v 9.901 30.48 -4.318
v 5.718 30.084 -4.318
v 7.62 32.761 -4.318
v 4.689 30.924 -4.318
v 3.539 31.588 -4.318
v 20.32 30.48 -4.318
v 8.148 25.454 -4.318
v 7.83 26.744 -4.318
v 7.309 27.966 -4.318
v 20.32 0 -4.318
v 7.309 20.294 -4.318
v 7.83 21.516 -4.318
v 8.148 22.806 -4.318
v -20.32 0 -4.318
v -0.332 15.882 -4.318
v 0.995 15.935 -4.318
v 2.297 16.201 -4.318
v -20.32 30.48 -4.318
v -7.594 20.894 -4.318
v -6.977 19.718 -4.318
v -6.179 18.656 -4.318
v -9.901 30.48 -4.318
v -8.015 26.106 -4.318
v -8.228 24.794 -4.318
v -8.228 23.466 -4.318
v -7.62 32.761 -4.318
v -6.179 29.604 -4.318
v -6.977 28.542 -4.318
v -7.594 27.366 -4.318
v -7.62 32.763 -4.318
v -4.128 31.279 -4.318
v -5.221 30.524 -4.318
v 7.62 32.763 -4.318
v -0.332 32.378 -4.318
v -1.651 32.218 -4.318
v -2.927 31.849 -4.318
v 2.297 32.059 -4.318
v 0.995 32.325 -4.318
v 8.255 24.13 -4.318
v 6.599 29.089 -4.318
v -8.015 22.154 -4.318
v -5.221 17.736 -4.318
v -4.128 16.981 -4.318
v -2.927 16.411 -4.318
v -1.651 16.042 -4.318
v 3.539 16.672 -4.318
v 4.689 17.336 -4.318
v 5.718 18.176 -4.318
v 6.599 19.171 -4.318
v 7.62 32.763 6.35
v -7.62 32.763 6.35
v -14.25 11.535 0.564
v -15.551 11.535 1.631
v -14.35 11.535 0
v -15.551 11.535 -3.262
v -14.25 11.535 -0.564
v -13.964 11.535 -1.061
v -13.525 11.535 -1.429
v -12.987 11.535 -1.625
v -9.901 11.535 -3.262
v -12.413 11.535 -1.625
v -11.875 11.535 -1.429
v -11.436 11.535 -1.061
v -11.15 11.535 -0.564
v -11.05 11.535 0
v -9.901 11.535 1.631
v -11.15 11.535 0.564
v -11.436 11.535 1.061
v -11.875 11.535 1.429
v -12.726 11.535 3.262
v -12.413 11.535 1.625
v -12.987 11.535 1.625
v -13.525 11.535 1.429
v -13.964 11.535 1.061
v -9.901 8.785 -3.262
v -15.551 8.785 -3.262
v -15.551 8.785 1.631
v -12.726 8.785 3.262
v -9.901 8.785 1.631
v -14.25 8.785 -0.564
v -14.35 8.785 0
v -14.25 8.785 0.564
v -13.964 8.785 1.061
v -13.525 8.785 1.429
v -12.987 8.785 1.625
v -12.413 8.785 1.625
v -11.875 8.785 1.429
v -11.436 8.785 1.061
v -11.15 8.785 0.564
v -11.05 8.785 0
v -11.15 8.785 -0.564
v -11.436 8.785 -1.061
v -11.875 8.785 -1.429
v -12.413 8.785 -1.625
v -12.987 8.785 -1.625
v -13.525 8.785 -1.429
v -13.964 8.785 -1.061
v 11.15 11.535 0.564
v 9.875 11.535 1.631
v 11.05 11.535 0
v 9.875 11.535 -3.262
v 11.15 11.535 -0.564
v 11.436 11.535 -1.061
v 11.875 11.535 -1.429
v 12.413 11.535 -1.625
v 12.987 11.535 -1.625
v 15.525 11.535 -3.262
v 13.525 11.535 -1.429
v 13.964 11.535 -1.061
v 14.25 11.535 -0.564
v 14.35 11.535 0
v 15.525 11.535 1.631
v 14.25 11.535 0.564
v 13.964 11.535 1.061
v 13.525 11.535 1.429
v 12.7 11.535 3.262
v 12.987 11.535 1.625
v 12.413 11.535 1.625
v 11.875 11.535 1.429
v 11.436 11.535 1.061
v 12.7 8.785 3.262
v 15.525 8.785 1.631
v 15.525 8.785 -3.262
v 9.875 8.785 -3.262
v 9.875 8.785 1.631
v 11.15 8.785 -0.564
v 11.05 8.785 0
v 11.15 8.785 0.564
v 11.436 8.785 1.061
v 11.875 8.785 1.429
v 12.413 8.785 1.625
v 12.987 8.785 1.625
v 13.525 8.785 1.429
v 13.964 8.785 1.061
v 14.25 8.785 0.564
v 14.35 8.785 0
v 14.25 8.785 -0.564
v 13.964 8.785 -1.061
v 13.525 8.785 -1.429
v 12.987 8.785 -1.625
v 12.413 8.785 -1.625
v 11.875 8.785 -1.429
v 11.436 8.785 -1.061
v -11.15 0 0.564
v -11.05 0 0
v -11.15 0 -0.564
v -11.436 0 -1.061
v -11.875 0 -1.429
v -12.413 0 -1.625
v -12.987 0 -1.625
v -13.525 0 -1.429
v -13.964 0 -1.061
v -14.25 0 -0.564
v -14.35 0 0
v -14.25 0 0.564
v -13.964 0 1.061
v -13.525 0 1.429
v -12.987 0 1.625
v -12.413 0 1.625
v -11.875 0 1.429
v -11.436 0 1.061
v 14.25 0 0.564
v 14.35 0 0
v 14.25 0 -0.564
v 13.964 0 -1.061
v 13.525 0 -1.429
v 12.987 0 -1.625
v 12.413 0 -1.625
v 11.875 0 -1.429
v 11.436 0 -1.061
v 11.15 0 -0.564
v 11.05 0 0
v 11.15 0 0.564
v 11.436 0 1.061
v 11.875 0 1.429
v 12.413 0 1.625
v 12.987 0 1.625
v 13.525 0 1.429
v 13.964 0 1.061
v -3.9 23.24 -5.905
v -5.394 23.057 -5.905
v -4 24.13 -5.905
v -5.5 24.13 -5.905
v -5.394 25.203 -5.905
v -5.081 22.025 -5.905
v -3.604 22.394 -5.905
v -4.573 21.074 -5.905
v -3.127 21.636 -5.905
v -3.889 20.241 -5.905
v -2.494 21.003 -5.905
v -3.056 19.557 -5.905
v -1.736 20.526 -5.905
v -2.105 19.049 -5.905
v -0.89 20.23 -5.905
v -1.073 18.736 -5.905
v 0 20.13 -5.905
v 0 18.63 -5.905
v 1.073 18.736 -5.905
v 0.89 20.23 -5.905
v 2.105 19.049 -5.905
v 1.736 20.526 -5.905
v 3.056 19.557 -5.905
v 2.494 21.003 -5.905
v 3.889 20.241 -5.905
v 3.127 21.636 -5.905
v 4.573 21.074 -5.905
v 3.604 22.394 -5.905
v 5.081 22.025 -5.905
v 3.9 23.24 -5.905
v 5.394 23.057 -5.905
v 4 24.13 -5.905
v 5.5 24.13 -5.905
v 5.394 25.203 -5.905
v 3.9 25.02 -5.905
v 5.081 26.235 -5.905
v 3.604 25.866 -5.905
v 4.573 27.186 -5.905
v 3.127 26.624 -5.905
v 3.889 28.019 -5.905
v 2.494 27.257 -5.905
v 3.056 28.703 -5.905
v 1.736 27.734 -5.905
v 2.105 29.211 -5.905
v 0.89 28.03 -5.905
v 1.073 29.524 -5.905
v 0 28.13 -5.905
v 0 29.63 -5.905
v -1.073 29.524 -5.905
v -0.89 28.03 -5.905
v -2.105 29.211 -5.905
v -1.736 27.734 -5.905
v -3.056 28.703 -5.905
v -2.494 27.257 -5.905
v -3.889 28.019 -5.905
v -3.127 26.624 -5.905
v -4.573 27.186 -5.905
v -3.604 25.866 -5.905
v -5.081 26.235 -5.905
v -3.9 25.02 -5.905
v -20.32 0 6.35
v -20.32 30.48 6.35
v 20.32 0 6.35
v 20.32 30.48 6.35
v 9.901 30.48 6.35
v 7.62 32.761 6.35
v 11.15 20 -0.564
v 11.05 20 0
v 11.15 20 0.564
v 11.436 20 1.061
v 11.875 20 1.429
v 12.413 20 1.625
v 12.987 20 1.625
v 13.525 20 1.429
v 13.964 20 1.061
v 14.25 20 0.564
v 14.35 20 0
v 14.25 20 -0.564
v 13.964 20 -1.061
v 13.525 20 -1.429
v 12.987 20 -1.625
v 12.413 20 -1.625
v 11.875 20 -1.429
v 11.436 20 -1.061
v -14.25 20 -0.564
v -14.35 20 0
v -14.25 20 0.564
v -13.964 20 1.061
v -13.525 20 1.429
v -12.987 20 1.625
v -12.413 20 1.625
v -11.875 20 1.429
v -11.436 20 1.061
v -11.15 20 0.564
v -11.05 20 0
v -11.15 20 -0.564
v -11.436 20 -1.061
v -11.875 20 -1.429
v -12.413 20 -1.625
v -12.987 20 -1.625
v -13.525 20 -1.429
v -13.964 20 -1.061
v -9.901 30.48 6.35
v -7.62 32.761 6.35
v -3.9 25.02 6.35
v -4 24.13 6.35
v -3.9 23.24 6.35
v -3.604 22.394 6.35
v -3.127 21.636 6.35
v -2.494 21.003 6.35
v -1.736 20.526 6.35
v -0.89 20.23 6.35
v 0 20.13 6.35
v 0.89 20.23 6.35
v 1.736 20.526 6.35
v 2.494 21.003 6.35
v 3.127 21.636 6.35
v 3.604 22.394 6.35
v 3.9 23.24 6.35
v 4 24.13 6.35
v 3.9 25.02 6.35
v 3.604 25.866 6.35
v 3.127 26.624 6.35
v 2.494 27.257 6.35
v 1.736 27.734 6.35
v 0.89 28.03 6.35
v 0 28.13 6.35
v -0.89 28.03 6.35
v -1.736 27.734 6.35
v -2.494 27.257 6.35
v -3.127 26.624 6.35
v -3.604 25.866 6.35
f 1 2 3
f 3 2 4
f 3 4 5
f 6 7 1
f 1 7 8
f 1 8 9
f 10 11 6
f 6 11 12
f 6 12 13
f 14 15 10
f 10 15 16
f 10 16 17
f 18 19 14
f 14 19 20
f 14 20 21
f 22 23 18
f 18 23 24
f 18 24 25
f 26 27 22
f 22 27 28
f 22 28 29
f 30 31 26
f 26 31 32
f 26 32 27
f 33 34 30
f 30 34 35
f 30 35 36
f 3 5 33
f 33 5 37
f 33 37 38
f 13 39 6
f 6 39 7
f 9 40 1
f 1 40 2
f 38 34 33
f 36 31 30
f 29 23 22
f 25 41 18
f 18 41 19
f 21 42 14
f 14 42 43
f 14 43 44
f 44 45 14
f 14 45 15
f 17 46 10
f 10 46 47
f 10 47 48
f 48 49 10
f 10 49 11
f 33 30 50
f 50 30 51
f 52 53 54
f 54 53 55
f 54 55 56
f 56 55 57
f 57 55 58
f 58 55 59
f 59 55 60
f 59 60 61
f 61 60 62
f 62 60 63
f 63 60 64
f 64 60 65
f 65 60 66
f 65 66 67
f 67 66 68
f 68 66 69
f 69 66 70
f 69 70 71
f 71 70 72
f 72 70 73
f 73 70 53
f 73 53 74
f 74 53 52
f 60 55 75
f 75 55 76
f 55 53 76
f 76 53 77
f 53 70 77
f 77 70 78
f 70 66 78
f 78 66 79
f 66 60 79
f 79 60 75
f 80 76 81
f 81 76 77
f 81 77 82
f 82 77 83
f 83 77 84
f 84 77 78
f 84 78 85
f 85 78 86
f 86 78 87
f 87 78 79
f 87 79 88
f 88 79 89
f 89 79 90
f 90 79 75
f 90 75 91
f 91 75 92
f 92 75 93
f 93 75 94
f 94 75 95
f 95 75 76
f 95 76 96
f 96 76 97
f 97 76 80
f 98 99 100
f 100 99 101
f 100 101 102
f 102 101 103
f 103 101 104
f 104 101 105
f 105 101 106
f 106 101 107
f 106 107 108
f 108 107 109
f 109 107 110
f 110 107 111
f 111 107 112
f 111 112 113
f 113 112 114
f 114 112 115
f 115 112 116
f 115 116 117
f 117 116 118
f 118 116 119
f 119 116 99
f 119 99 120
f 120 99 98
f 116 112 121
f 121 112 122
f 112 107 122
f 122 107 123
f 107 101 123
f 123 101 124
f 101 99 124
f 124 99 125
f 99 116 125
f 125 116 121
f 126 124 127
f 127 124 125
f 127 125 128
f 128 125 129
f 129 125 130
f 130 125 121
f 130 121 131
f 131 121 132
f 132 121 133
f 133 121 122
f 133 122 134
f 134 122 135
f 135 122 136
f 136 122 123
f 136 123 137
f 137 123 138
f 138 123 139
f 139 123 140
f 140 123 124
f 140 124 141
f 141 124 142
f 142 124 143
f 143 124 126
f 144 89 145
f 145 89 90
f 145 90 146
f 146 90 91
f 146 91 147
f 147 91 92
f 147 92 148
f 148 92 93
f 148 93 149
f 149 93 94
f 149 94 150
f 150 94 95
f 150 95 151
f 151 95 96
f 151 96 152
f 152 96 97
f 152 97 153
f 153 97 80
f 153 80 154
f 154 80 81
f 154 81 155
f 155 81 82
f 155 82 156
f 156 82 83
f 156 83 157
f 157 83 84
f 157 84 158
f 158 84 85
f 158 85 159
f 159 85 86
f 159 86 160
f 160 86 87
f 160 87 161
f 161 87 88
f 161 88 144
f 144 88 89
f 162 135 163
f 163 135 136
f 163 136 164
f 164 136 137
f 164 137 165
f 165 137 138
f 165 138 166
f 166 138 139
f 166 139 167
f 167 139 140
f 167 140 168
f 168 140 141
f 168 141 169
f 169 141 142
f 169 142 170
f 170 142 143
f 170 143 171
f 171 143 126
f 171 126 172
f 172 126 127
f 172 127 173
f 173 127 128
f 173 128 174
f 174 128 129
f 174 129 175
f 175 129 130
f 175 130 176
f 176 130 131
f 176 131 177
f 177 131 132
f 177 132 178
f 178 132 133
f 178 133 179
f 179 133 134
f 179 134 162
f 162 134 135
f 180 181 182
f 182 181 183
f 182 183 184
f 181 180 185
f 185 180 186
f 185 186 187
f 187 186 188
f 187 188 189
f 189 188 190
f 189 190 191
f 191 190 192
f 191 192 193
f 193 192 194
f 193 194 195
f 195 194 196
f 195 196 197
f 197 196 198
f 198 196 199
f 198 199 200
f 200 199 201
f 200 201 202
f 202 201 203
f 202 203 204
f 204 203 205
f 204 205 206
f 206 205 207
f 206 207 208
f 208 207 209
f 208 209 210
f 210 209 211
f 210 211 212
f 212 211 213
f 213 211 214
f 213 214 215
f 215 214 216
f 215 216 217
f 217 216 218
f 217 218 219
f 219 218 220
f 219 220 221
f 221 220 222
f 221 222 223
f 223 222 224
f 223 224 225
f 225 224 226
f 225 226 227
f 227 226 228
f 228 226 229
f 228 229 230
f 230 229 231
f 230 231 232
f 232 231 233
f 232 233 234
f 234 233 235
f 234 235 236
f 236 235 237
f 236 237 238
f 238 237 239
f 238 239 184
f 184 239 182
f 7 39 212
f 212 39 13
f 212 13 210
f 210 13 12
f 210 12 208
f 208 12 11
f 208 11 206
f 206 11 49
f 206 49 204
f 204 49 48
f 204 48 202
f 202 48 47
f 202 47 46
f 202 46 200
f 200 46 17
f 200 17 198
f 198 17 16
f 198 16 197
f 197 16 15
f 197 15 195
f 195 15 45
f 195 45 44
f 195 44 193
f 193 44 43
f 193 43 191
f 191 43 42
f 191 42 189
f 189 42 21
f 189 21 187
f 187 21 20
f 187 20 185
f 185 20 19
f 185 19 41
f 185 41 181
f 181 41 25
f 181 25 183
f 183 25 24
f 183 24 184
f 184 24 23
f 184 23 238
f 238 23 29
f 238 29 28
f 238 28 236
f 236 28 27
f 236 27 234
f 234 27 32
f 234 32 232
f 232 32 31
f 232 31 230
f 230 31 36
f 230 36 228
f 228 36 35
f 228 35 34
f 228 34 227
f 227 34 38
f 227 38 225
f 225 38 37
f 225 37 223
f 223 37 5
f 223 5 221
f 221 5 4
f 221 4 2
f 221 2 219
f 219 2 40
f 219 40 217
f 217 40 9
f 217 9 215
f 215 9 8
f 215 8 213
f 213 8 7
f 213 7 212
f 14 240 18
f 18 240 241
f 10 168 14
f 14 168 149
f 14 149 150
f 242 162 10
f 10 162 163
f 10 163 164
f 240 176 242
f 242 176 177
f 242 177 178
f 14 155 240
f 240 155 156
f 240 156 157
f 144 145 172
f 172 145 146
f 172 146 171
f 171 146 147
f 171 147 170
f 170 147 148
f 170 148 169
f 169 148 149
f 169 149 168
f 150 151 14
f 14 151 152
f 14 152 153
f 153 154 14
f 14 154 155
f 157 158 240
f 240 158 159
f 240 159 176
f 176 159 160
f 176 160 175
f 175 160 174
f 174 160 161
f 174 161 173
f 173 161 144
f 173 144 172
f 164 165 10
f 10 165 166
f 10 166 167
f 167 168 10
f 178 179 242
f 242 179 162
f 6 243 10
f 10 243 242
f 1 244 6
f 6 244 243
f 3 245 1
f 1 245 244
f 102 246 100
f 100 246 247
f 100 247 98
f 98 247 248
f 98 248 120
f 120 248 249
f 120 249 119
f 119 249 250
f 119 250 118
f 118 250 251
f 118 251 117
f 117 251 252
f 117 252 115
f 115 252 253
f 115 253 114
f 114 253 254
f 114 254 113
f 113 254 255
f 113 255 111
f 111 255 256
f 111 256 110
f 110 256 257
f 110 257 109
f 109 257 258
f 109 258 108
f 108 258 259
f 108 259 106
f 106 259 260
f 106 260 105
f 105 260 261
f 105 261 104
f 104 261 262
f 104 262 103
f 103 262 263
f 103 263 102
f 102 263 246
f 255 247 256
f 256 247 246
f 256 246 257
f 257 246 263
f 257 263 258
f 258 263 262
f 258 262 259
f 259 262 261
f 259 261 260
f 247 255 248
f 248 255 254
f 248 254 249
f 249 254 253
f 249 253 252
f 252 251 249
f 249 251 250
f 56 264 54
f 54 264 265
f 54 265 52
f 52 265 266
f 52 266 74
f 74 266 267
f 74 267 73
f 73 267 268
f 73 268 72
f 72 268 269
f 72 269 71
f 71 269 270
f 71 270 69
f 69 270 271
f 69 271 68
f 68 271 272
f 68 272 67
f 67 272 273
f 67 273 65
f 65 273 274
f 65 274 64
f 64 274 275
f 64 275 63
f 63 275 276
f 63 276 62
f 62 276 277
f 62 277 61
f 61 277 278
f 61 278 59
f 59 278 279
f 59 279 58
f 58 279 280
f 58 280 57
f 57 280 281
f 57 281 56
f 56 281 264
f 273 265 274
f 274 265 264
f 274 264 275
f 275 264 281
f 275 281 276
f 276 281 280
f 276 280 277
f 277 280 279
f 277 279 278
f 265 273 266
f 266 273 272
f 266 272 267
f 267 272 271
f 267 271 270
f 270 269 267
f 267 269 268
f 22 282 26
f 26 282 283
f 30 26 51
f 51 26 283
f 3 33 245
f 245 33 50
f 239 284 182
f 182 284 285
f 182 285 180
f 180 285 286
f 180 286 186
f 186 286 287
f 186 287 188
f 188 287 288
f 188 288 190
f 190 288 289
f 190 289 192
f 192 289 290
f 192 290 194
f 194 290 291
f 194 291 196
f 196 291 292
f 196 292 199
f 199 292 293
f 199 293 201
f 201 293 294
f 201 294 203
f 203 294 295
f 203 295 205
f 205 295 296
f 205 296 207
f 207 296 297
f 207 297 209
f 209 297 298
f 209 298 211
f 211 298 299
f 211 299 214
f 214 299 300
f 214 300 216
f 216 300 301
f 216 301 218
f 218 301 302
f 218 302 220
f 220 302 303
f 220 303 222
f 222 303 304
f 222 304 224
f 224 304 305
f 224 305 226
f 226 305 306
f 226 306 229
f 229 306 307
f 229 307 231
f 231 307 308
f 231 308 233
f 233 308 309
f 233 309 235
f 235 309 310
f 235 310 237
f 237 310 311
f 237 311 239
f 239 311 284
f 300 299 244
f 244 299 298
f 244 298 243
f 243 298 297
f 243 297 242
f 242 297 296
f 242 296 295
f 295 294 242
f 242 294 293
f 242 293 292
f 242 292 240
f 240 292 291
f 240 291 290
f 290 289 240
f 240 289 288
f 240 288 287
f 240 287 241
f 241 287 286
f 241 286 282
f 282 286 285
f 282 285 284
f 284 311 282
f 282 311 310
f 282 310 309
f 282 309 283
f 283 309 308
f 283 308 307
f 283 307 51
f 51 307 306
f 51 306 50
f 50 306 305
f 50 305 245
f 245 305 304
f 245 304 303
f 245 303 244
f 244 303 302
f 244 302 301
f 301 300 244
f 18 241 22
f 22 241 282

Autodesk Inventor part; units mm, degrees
sketch "Sketch3" plane through (0, 0, 0) normal (0, 1, 0) x (-1, 0, 0)
  line L0 (-20.32, 6.35) -> (20.32, 6.35)
  line L1 (20.32, 6.35) -> (20.32, -6.35)
  line L2 (20.32, -6.35) -> (-20.32, -6.35)
  line L3 (-20.32, -6.35) -> (-20.32, 6.35)
  line L4 (-20.32, 6.35) -> (20.32, -6.35) construction
  line L5 (20.32, 6.35) -> (-20.32, -6.35) construction
  point P0 (0, 0)
  dimension "d0" = 40.64
  dimension "d1" = 12.7
sketch "Sketch3 outline for Extrusion1" plane through (0, 0, 0) normal (0, 1, 0) x (-1, 0, 0)
  line L0 (-20.32, 6.35) -> (-20.32, -6.35)
  line L1 (20.32, 6.35) -> (-20.32, 6.35)
  line L2 (20.32, -6.35) -> (20.32, 6.35)
  line L3 (-20.32, -6.35) -> (20.32, -6.35)
extrude "Extrusion1" add sketch "Sketch3 outline for Extrusion1" along normal blind 30.48
sketch "Sketch4" plane through (-20.32, 0, 6.35) normal (0, 0, 1) x (1, 0, 0)
  line L0 (20.32, 0) -> (20.32, 24.13) construction
  circle A0 centre (20.32, 24.13) radius 4
  line L1 (12.7, 28.196818) -> (27.94, 28.196818)
  line L2 (27.94, 28.196818) -> (27.94, 32.763182)
  line L3 (27.94, 32.763182) -> (12.7, 32.763182)
  line L4 (12.7, 32.763182) -> (12.7, 28.196818)
  line L5 (40.64, 30.48) -> (0, 30.48)
  line L6 (12.7, 28.196818) -> (27.94, 32.763182) construction
  line L7 (27.94, 28.196818) -> (12.7, 32.763182) construction
  point P0 (20.32, 30.48)
  dimension "d4" = 24.13
  dimension "d5" = 8
  dimension "d6" = 15.24
sketch "Sketch4 outline for Extrusion2" plane through (-20.32, 0, 6.35) normal (0, 0, 1) x (1, 0, 0)
  line L0 (27.94, 32.763182) -> (12.7, 32.763182)
  line L1 (27.94, 28.196818) -> (27.94, 32.763182)
  line L2 (12.7, 28.196818) -> (27.94, 28.196818)
  line L3 (12.7, 32.763182) -> (12.7, 28.196818)
extrude "Extrusion2" add sketch "Sketch4 outline for Extrusion2" against normal up to surface (12.7 mm away)
sketch "Sketch4 outline for Extrusion3" plane through (-20.32, 0, 6.35) normal (0, 0, 1) x (1, 0, 0)
  circle A0 centre (20.32, 24.13) radius 4
extrude "Extrusion3" cut sketch "Sketch4 outline for Extrusion3" against normal blind 22.225
chamfer "Chamfer1" distance 2.28092 angle 45 2 edges at (7.62, 30.48, 0) (-7.62, 30.48, 0)
sketch "Sketch5" plane through (0, 0, 0) normal (0, -1, 0) x (1, 0, 0)
  line L0 (0, 0) -> (-12.7, 0) construction
  line L1 (0, 0) -> (12.7, 0) construction
  circle A0 centre (-12.7, 0) radius 1.65
  circle A1 centre (12.7, 0) radius 1.65
  dimension "d14" = 12.7
  dimension "d15" = 12.7
  dimension "d16" = 3.3
  dimension "d17" = 3.3
sketch "Sketch5 outline for Extrusion4" plane through (0, 0, 0) normal (0, -1, 0) x (1, 0, 0)
  circle A0 centre (12.7, 0) radius 1.65
  circle A1 centre (-12.7, 0) radius 1.65
extrude "Extrusion4" cut sketch "Sketch5 outline for Extrusion4" against normal blind 20
ref_plane "Work Plane1" through (20.32, 0, -4.318) normal (0, 0, -1) x (-1, 0, 0)
sketch "Sketch6" plane through (20.32, 0, -4.318) normal (0, 0, -1) x (-1, 0, 0)
  line L0 (0, 30.48) -> (10.41908, 30.48)
  line L1 (0, 0) -> (0, 30.48)
  line L2 (0, 0) -> (40.64, 0)
  line L3 (40.64, 0) -> (40.64, 30.48)
  line L4 (30.22092, 30.48) -> (40.64, 30.48)
  line L5 (27.94, 32.76092) -> (30.22092, 30.48)
  line L6 (12.7, 32.763182) -> (27.94, 32.763182)
  line L7 (10.41908, 30.48) -> (12.7, 32.76092)
  circle A0 centre (20.32, 24.13) radius 4
  line L8 (0, 30.48) -> (10.41908, 30.48)
  line L9 (0, 0) -> (0, 30.48)
  line L10 (0, 0) -> (40.64, 0)
  line L11 (40.64, 0) -> (40.64, 30.48)
  line L12 (30.22092, 30.48) -> (40.64, 30.48)
  line L13 (27.94, 32.76092) -> (30.22092, 30.48)
  line L14 (27.94, 32.763182) -> (27.94, 32.76092)
  line L15 (12.7, 32.763182) -> (27.94, 32.763182)
  line L16 (12.7, 32.76092) -> (12.7, 32.763182)
  line L17 (10.41908, 30.48) -> (12.7, 32.76092)
  line L18 (0, 30.48) -> (0, 0)
  line L19 (40.64, 0) -> (0, 0)
  line L20 (40.64, 0) -> (40.64, 30.48)
  line L21 (40.64, 30.48) -> (30.22092, 30.48)
  line L22 (30.22092, 30.48) -> (27.94, 32.763182)
  line L23 (27.94, 32.763182) -> (12.7, 32.76092)
  line L24 (12.7, 32.76092) -> (10.41908, 30.48)
  line L25 (0, 30.48) -> (10.41908, 30.48)
  point P0 (20.32, 0)
sketch "Sketch6 outline for Extrusion5" plane through (20.32, 0, -4.318) normal (0, 0, -1) x (-1, 0, 0)
  line L0 (27.94, 32.76092) -> (27.94, 32.763182)
  line L1 (30.22092, 30.48) -> (27.94, 32.76092)
  line L2 (27.94, 32.763182) -> (12.7, 32.76092)
  line L3 (40.64, 30.48) -> (30.22092, 30.48)
  line L4 (12.7, 32.76092) -> (10.41908, 30.48)
  line L5 (40.64, 0) -> (40.64, 30.48)
  line L6 (10.41908, 30.48) -> (0, 30.48)
  line L7 (0, 0) -> (40.64, 0)
  line L8 (0, 30.48) -> (0, 0)
  circle A0 centre (20.32, 24.13) radius 4
extrude "Extrusion5" cut sketch "Sketch6 outline for Extrusion5" along normal blind 20
sketch "Sketch7" plane through (20.32, 0, -4.318) normal (0, 0, -1) x (-1, 0, 0)
  circle A0 centre (20.32, 24.13) radius 8.255
  point P0 (20.32, 0)
ref_plane "Work Plane2" through (20.32, 0, -5.9055) normal (0, 0, -1) x (-1, 0, 0)
sketch "Sketch8" plane through (20.32, 0, -5.9055) normal (0, 0, -1) x (-1, 0, 0)
  circle A0 centre (20.32, 24.13) radius 5.5
  point P0 (20.32, 0)
  dimension "d25" = 11
sketch "Sketch7 outline for Loft1" plane through (20.32, 0, -4.318) normal (0, 0, -1) x (-1, 0, 0)
  circle A0 centre (20.32, 24.13) radius 8.255
sketch "Sketch8 outline for Loft1" plane through (20.32, 0, -5.9055) normal (0, 0, -1) x (-1, 0, 0)
  circle A0 centre (20.32, 24.13) radius 5.5
loft "Loft1" add profiles "Sketch7 outline for Loft1", "Sketch8 outline for Loft1"
sketch "Sketch9" plane through (-20.32, 0, 6.35) normal (0, 0, 1) x (1, 0, 0)
  circle A0 centre (20.32, 24.13) radius 4 projected
  point P0 (20.32, 0)
sketch "Sketch9 outline for Extrusion6" plane through (-20.32, 0, 6.35) normal (0, 0, 1) x (1, 0, 0)
  circle A0 centre (20.32, 24.13) radius 4
extrude "Extrusion6" cut sketch "Sketch9 outline for Extrusion6" against normal blind 129.224999
ref_plane "Work Plane3" through (0, 10.16, 0) normal (0, -1, 0) x (1, 0, 0)
sketch "Sketch10" plane through (0, 10.16, 0) normal (0, -1, 0) x (1, 0, 0)
  circle A0 centre (-12.7, 0) radius 1.65
  line L0 (-15.5782, 0) -> (-9.87364, 0) construction
  line L1 (-9.90092, 1.631015) -> (-9.90092, -1.631015)
  line L2 (-15.55092, -1.631015) -> (-15.55092, 1.631015)
  line L3 (-12.72592, 3.262029) -> (-9.90092, 1.631015)
  line L4 (-15.55092, 1.631015) -> (-12.72592, 3.262029)
  line L5 (-12.72592, 0) -> (-9.90092, 0) construction
  line L6 (9.84772, 0) -> (15.55228, 0) construction
  line L7 (15.525, 1.631015) -> (15.525, -1.631015)
  line L8 (9.875, -1.631015) -> (9.875, 1.631015)
  line L9 (12.7, 3.262029) -> (15.525, 1.631015)
  line L10 (9.875, 1.631015) -> (12.7, 3.262029)
  line L11 (12.7, 0) -> (15.525, 0) construction
  circle A1 centre (12.7, 0) radius 1.65
  line L12 (15.525, -1.631015) -> (15.525, -3.262029)
  line L13 (15.525, -3.262029) -> (9.875, -3.262029)
  line L14 (9.875, -3.262029) -> (9.875, -1.631015)
  line L15 (-9.90092, -1.631015) -> (-9.90092, -3.262029)
  line L16 (-9.90092, -4.318) -> (-9.90092, 6.35)
  line L17 (-12.72592, -3.262029) -> (-9.90092, -3.262029)
  line L18 (-12.72592, -3.262029) -> (-15.55092, -3.262029)
  line L19 (-15.55092, -3.262029) -> (-15.55092, -1.631015)
  point P0 (0, 0)
  point P1 (-12.7, -1.132545)
  point P2 (-12.7, -3.5)
  point P3 (12.7, -1.132545)
  point P4 (12.7, -3.5)
  dimension "d34" = 2.825
  dimension "d35" = 2.825
sketch "Sketch10 outline for Extrusion7" plane through (0, 10.16, 0) normal (0, -1, 0) x (1, 0, 0)
  line L0 (-15.55092, -3.262029) -> (-9.90092, -3.262029)
  line L1 (-9.90092, -3.262029) -> (-9.90092, 1.631015)
  line L2 (-9.90092, 1.631015) -> (-12.72592, 3.262029)
  line L3 (-12.72592, 3.262029) -> (-15.55092, 1.631015)
  line L4 (-15.55092, 1.631015) -> (-15.55092, -3.262029)
  line L5 (15.525, 1.631015) -> (12.7, 3.262029)
  line L6 (12.7, 3.262029) -> (9.875, 1.631015)
  line L7 (9.875, 1.631015) -> (9.875, -3.262029)
  line L8 (9.875, -3.262029) -> (15.525, -3.262029)
  line L9 (15.525, -3.262029) -> (15.525, 1.631015)
extrude "Extrusion7" cut sketch "Sketch10 outline for Extrusion7" along normal mid plane 2.75
sketch "Sketch11" plane through (20.32, 0, -4.318) normal (0, 0, -1) x (-1, 0, 0)
  line L0 (29.08046, 32.526826) -> (11.260311, 32.526826)
  line L1 (11.260311, 32.526826) -> (11.260311, 35.082572)
  line L2 (11.260311, 35.082572) -> (29.08046, 35.082572)
  line L3 (29.08046, 35.082572) -> (29.08046, 32.526826)
  point P0 (20.32, 0)
sketch "Sketch11 outline for Extrusion8" plane through (20.32, 0, -4.318) normal (0, 0, -1) x (-1, 0, 0)
  line L0 (29.08046, 32.526826) -> (29.08046, 35.082572)
  line L1 (11.260311, 32.526826) -> (29.08046, 32.526826)
  line L2 (11.260311, 35.082572) -> (11.260311, 32.526826)
  line L3 (29.08046, 35.082572) -> (11.260311, 35.082572)
extrude "Extrusion8" cut sketch "Sketch11 outline for Extrusion8" along normal blind 9.949993
properties part number "Roller Bracket"
